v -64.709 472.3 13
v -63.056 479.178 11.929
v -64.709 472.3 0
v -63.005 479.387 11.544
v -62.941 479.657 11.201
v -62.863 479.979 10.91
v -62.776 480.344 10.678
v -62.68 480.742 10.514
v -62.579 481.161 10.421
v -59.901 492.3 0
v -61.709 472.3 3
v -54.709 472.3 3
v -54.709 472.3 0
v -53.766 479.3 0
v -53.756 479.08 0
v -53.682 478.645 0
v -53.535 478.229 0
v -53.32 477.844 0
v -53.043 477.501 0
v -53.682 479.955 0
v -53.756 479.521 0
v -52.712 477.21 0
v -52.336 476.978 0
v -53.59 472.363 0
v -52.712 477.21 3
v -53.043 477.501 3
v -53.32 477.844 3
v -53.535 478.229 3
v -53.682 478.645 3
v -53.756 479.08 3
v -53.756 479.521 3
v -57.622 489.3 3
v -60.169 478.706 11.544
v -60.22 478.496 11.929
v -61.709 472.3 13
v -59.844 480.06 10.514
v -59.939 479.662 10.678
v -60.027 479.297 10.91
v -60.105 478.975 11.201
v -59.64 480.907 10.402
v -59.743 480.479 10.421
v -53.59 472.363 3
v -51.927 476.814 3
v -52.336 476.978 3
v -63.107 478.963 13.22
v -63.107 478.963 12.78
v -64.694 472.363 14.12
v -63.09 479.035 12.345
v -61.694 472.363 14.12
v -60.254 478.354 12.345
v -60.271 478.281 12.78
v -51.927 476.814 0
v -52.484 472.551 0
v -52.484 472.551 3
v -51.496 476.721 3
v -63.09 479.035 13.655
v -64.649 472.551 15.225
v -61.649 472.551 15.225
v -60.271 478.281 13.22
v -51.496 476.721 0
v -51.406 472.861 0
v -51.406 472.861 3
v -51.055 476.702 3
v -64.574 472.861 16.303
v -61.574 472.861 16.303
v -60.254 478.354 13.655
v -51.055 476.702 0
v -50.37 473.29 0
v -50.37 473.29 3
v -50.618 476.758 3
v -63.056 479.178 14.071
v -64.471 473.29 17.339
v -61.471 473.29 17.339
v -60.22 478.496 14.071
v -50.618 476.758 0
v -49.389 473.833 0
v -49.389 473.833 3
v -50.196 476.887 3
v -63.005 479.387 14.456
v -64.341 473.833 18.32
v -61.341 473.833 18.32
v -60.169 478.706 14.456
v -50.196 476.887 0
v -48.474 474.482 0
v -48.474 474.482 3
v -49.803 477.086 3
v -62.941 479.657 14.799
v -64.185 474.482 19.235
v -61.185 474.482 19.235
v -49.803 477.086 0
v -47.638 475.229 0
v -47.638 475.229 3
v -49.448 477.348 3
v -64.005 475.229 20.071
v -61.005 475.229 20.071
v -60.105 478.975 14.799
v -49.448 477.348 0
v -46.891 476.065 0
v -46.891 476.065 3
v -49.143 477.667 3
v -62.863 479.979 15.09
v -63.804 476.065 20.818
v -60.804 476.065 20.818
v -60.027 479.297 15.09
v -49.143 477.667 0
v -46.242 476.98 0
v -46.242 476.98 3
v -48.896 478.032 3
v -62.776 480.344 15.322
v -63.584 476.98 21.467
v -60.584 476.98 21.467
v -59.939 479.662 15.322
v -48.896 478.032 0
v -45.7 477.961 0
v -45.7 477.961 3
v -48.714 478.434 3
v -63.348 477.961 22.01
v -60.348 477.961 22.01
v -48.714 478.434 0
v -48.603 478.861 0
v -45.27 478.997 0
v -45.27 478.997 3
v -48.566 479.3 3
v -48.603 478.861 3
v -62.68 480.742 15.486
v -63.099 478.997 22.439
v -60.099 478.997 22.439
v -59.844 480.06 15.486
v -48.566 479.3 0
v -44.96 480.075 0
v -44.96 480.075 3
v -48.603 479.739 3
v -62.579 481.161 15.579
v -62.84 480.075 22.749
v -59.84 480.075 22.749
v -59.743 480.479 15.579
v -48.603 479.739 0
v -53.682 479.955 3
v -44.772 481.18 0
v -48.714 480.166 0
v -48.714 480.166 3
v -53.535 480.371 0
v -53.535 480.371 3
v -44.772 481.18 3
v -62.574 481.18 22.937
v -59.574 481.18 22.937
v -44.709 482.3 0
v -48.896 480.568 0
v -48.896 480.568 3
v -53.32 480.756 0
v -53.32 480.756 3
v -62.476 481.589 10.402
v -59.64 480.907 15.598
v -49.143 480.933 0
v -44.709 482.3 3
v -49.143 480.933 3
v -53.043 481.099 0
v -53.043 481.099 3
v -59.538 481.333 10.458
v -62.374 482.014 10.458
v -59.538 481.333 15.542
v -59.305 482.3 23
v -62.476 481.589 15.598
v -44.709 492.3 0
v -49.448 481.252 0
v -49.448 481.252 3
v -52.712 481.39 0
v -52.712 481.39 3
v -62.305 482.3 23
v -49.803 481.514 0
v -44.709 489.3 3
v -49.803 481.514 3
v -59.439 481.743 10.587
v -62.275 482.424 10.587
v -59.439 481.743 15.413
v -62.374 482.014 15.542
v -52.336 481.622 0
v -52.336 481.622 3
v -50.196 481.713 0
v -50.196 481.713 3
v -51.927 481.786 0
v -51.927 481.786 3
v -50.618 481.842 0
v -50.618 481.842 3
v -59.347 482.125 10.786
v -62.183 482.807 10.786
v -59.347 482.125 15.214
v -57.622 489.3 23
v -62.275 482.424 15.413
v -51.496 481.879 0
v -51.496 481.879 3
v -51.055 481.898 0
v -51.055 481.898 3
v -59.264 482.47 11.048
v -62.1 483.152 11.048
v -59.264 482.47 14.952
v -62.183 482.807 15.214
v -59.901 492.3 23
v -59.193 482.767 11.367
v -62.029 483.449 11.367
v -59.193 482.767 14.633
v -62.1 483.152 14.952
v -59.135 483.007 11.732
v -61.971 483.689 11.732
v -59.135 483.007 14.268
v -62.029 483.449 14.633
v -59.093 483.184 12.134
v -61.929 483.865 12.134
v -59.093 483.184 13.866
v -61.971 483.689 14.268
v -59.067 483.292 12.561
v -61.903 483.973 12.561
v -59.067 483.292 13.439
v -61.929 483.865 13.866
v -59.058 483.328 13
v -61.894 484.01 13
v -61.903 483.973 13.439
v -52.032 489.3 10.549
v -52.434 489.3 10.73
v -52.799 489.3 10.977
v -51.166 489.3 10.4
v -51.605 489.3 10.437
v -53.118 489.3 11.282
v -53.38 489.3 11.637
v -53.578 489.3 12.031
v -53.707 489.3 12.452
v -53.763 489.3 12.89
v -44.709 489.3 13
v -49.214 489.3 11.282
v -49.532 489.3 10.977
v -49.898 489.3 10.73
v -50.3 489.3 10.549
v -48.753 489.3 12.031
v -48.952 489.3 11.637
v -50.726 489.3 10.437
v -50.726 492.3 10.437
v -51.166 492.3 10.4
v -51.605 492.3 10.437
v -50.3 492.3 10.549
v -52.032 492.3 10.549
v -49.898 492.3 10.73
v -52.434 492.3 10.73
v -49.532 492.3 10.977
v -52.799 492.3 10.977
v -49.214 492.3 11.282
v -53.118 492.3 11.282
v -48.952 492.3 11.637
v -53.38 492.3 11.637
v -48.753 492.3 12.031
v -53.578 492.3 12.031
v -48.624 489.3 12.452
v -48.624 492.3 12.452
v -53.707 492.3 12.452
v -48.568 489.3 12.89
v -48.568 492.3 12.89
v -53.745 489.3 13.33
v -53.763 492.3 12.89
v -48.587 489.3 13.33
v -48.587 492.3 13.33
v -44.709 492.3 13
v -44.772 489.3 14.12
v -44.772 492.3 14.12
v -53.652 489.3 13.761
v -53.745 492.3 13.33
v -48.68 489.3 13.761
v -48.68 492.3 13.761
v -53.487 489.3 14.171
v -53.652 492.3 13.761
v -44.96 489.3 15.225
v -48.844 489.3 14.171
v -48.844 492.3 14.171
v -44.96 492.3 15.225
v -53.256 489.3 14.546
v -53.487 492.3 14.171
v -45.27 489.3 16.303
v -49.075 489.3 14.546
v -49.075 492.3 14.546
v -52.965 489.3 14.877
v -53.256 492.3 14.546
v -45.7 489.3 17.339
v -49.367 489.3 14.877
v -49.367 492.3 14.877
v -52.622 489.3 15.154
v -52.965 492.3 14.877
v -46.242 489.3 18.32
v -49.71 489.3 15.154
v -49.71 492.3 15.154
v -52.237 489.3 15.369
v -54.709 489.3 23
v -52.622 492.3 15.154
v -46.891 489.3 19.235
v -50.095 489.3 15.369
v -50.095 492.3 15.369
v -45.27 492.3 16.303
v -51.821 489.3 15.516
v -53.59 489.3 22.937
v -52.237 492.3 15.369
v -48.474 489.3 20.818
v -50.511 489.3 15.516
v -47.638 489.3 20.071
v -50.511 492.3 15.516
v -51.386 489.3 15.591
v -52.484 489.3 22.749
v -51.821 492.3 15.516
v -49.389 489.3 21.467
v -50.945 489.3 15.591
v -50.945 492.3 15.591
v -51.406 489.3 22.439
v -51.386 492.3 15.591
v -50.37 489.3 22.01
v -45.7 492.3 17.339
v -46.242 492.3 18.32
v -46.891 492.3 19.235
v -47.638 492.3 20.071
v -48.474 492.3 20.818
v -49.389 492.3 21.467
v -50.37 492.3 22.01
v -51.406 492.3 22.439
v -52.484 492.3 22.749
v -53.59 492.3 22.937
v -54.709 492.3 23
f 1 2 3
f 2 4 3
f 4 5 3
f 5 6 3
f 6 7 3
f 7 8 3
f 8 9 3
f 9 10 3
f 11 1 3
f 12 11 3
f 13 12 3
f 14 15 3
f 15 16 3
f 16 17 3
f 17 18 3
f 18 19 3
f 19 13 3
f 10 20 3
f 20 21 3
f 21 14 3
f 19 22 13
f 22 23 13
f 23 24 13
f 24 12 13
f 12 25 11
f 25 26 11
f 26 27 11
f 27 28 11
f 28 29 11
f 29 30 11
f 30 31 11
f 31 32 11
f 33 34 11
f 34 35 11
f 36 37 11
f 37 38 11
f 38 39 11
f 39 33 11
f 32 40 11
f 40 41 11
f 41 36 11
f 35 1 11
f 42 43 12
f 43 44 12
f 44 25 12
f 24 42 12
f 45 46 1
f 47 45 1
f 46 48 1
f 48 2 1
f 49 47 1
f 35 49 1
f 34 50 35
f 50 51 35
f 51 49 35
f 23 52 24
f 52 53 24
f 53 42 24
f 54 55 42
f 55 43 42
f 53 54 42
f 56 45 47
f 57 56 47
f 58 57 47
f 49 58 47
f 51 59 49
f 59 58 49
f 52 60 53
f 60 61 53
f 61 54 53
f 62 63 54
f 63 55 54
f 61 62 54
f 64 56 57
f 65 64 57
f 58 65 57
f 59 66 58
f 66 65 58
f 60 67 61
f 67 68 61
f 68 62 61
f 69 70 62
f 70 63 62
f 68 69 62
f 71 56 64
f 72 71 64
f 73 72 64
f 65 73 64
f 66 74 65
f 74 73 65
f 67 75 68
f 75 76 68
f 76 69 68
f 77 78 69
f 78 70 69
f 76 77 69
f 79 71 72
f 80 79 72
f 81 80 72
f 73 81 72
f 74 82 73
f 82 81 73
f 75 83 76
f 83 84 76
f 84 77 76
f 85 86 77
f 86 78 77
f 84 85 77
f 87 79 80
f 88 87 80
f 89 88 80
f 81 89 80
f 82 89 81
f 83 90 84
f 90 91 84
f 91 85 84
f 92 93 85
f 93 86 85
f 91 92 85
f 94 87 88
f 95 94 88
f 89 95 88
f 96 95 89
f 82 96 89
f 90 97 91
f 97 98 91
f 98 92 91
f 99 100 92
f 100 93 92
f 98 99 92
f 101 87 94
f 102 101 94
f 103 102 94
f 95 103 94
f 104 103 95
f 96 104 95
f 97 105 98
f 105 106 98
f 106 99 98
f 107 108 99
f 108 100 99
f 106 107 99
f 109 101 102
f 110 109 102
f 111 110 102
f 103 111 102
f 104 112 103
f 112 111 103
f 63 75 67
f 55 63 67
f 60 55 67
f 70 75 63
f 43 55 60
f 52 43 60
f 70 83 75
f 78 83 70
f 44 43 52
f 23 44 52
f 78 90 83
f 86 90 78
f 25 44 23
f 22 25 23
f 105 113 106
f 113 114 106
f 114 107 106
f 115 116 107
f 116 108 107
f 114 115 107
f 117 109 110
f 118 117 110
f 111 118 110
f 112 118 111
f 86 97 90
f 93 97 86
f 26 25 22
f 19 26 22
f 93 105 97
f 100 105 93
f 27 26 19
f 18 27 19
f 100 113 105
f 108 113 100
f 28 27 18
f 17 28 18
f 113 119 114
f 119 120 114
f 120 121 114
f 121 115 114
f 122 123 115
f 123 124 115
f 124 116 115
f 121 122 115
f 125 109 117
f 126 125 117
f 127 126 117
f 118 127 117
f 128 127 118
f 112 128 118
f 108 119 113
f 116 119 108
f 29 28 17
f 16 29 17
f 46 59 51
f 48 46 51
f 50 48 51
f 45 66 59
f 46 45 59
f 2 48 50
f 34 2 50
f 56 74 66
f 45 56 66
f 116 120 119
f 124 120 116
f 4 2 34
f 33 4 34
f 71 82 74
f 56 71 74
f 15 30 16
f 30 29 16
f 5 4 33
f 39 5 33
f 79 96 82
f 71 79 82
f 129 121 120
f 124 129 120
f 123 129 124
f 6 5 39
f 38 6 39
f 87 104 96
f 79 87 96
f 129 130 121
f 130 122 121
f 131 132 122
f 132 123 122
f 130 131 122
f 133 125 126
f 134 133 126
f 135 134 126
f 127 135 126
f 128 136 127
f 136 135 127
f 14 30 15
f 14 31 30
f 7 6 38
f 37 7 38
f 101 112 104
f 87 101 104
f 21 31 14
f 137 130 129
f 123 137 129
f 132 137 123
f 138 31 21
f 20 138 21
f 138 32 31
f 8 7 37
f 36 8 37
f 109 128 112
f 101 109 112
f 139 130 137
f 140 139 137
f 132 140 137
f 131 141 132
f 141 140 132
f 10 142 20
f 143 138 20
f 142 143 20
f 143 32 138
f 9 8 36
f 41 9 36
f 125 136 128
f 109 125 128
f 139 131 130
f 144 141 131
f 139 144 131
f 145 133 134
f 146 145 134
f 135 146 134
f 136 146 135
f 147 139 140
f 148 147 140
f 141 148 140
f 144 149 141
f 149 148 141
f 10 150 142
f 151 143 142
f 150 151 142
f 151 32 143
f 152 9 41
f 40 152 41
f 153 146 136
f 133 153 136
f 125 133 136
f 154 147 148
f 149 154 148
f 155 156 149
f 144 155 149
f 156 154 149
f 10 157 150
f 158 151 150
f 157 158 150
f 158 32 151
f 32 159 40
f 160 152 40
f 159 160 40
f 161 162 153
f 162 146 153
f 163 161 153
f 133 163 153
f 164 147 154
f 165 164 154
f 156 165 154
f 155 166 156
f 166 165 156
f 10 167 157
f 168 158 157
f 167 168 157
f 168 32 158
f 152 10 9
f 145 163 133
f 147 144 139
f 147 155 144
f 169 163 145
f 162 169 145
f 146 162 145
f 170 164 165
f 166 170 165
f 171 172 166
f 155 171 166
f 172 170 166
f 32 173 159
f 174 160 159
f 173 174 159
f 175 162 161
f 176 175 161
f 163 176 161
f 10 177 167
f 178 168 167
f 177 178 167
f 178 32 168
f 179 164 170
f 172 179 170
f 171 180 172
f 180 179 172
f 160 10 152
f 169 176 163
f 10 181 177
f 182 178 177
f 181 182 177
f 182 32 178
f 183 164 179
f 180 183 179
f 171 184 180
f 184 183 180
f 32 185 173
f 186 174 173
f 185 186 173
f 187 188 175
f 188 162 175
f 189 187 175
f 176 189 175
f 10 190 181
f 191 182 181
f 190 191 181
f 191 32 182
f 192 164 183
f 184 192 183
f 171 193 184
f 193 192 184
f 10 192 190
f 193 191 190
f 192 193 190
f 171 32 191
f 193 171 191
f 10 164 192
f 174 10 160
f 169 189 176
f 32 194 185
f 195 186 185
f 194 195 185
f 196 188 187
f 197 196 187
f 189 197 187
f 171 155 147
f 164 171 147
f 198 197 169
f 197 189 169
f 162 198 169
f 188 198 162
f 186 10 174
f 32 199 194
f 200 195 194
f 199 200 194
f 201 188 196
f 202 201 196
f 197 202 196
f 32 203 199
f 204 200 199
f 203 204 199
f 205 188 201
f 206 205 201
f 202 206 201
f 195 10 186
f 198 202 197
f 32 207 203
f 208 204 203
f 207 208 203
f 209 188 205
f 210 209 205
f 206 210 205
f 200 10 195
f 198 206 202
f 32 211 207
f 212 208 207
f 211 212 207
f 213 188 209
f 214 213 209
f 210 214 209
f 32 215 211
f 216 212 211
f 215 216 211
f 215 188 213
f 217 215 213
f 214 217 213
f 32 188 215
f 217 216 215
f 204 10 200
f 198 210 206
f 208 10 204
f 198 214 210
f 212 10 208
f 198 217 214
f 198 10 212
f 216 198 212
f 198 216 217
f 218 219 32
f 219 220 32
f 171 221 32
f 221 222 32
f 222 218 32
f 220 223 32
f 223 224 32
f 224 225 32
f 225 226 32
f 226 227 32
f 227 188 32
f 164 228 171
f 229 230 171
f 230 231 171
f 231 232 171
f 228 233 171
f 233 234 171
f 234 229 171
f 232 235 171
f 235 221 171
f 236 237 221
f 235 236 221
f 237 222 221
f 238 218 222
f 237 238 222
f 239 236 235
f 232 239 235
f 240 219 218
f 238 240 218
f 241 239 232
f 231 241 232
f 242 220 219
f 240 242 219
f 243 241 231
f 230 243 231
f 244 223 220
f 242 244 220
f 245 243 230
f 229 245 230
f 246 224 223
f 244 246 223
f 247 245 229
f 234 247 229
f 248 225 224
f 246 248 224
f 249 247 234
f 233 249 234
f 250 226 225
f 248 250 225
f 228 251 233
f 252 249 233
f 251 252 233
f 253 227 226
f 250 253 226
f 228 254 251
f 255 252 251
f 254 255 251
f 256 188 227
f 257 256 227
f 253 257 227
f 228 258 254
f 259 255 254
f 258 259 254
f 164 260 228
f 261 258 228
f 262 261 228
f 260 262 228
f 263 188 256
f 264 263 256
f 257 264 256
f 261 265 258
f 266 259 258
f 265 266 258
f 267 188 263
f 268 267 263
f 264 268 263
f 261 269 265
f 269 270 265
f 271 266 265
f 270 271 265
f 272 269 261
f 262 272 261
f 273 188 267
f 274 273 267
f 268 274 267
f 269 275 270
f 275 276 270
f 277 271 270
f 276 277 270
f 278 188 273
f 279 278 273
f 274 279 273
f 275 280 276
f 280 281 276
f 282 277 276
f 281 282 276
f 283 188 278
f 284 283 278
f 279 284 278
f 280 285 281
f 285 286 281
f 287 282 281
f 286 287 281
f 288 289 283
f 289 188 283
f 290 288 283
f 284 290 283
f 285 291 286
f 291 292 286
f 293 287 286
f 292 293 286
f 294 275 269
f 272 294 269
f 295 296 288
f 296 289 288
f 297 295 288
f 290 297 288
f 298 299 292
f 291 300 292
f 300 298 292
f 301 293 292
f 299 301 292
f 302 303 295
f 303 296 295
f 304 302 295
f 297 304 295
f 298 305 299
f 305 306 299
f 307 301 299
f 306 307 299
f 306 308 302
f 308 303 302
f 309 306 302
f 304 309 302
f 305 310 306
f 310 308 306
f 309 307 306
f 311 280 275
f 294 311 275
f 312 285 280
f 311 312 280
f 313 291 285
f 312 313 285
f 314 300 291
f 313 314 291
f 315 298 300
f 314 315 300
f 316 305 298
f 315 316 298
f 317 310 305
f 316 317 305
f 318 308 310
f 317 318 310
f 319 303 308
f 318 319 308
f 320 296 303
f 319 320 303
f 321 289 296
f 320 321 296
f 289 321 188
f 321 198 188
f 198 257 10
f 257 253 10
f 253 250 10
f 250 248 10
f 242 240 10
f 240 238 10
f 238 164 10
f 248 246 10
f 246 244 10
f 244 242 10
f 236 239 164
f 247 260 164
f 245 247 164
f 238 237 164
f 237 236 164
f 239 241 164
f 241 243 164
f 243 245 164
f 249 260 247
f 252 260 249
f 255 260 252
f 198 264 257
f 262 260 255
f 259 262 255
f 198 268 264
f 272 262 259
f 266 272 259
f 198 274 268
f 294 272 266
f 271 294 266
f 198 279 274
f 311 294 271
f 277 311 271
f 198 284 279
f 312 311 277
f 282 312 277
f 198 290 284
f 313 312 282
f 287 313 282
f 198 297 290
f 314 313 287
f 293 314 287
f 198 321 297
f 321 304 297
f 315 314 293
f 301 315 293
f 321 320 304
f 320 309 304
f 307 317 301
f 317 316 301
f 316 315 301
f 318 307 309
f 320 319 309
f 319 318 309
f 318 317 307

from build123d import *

# Parameters (mm, degrees)
BOSS_EXTRU_1_DEPTH      = 3
BOSS_EXTRU_2_DEPTH      = 20
ESQUISSE4_W             = 14.470789164
ESQUISSE4_H             = 3
BOSS_EXTRU_3_DEPTH      = 20
CONG_1_R                = 10
ESQUISSE5_R             = 2.6
ENL_V_MAT_EXTRU_1_DEPTH = 20
ESQUISSE6_R             = 2.6
ENL_V_MAT_EXTRU_2_DEPTH = 20
ESQUISSE7_R             = 2.6
ENL_V_MAT_EXTRU_3_DEPTH = 20


with BuildPart() as part:
    # Esquisse1 → Boss.-Extru.1 (new body)
    with BuildSketch(Plane.XY):
        Polygon((-44.709210836, 492.3), (-44.709210836, 472.3), (-64.709210836, 472.3), (-59.901201413, 492.3), align=None)
    extrude(amount=BOSS_EXTRU_1_DEPTH)

    # Esquisse3 → Boss.-Extru.2 (add)
    with BuildSketch(Plane.XY.offset(3)):
        Polygon((-59.901201413, 492.3), (-64.709210836, 472.3), (-61.709210836, 472.3), (-56.901201413, 492.3), align=None)
    extrude(amount=BOSS_EXTRU_2_DEPTH)

    # Esquisse4 → Boss.-Extru.3 (add)
    with BuildSketch(Plane.XY.offset(3)):
        with Locations((-51.944605418, 490.8)):
            Rectangle(ESQUISSE4_W, ESQUISSE4_H)
    extrude(amount=BOSS_EXTRU_3_DEPTH)

    # Congé1
    cong_1_edges = [part.edges().sort_by_distance(p)[0] for p in [
        (-63.209210836, 472.3, 23),
        (-44.709210836, 490.8, 23),
        (-44.709210836, 472.3, 1.5),
    ]]
    fillet(cong_1_edges, radius=CONG_1_R)

    # Esquisse5 → Enlèv. mat.-Extru.1 (cut)
    with BuildSketch(Plane.XY.offset(3)):
        with Locations((-51.165806832, 479.3)):
            Circle(ESQUISSE5_R)
    extrude(amount=-ENL_V_MAT_EXTRU_1_DEPTH, mode=Mode.SUBTRACT)

    # Esquisse6 → Enlèv. mat.-Extru.2 (cut)
    with BuildSketch(Plane.XZ.offset(-489.3)):
        with Locations(Location((-51.165806832, 13, 0), (0, 0, 270))):
            Circle(ESQUISSE6_R)
    extrude(amount=-ENL_V_MAT_EXTRU_2_DEPTH, mode=Mode.SUBTRACT)

    # Esquisse7 → Enlèv. mat.-Extru.3 (cut)
    with BuildSketch(Plane(origin=(-165.675566954, 39.828484352, 0), x_dir=(0, 0, -1), z_dir=(0.9722988712431988, -0.23374110673820636, 0))):
        with Locations(Location((-13, 453.53494557, 0), (0, 0, 90))):
            Circle(ESQUISSE7_R)
    extrude(amount=-ENL_V_MAT_EXTRU_3_DEPTH, mode=Mode.SUBTRACT)


solid = part.part
